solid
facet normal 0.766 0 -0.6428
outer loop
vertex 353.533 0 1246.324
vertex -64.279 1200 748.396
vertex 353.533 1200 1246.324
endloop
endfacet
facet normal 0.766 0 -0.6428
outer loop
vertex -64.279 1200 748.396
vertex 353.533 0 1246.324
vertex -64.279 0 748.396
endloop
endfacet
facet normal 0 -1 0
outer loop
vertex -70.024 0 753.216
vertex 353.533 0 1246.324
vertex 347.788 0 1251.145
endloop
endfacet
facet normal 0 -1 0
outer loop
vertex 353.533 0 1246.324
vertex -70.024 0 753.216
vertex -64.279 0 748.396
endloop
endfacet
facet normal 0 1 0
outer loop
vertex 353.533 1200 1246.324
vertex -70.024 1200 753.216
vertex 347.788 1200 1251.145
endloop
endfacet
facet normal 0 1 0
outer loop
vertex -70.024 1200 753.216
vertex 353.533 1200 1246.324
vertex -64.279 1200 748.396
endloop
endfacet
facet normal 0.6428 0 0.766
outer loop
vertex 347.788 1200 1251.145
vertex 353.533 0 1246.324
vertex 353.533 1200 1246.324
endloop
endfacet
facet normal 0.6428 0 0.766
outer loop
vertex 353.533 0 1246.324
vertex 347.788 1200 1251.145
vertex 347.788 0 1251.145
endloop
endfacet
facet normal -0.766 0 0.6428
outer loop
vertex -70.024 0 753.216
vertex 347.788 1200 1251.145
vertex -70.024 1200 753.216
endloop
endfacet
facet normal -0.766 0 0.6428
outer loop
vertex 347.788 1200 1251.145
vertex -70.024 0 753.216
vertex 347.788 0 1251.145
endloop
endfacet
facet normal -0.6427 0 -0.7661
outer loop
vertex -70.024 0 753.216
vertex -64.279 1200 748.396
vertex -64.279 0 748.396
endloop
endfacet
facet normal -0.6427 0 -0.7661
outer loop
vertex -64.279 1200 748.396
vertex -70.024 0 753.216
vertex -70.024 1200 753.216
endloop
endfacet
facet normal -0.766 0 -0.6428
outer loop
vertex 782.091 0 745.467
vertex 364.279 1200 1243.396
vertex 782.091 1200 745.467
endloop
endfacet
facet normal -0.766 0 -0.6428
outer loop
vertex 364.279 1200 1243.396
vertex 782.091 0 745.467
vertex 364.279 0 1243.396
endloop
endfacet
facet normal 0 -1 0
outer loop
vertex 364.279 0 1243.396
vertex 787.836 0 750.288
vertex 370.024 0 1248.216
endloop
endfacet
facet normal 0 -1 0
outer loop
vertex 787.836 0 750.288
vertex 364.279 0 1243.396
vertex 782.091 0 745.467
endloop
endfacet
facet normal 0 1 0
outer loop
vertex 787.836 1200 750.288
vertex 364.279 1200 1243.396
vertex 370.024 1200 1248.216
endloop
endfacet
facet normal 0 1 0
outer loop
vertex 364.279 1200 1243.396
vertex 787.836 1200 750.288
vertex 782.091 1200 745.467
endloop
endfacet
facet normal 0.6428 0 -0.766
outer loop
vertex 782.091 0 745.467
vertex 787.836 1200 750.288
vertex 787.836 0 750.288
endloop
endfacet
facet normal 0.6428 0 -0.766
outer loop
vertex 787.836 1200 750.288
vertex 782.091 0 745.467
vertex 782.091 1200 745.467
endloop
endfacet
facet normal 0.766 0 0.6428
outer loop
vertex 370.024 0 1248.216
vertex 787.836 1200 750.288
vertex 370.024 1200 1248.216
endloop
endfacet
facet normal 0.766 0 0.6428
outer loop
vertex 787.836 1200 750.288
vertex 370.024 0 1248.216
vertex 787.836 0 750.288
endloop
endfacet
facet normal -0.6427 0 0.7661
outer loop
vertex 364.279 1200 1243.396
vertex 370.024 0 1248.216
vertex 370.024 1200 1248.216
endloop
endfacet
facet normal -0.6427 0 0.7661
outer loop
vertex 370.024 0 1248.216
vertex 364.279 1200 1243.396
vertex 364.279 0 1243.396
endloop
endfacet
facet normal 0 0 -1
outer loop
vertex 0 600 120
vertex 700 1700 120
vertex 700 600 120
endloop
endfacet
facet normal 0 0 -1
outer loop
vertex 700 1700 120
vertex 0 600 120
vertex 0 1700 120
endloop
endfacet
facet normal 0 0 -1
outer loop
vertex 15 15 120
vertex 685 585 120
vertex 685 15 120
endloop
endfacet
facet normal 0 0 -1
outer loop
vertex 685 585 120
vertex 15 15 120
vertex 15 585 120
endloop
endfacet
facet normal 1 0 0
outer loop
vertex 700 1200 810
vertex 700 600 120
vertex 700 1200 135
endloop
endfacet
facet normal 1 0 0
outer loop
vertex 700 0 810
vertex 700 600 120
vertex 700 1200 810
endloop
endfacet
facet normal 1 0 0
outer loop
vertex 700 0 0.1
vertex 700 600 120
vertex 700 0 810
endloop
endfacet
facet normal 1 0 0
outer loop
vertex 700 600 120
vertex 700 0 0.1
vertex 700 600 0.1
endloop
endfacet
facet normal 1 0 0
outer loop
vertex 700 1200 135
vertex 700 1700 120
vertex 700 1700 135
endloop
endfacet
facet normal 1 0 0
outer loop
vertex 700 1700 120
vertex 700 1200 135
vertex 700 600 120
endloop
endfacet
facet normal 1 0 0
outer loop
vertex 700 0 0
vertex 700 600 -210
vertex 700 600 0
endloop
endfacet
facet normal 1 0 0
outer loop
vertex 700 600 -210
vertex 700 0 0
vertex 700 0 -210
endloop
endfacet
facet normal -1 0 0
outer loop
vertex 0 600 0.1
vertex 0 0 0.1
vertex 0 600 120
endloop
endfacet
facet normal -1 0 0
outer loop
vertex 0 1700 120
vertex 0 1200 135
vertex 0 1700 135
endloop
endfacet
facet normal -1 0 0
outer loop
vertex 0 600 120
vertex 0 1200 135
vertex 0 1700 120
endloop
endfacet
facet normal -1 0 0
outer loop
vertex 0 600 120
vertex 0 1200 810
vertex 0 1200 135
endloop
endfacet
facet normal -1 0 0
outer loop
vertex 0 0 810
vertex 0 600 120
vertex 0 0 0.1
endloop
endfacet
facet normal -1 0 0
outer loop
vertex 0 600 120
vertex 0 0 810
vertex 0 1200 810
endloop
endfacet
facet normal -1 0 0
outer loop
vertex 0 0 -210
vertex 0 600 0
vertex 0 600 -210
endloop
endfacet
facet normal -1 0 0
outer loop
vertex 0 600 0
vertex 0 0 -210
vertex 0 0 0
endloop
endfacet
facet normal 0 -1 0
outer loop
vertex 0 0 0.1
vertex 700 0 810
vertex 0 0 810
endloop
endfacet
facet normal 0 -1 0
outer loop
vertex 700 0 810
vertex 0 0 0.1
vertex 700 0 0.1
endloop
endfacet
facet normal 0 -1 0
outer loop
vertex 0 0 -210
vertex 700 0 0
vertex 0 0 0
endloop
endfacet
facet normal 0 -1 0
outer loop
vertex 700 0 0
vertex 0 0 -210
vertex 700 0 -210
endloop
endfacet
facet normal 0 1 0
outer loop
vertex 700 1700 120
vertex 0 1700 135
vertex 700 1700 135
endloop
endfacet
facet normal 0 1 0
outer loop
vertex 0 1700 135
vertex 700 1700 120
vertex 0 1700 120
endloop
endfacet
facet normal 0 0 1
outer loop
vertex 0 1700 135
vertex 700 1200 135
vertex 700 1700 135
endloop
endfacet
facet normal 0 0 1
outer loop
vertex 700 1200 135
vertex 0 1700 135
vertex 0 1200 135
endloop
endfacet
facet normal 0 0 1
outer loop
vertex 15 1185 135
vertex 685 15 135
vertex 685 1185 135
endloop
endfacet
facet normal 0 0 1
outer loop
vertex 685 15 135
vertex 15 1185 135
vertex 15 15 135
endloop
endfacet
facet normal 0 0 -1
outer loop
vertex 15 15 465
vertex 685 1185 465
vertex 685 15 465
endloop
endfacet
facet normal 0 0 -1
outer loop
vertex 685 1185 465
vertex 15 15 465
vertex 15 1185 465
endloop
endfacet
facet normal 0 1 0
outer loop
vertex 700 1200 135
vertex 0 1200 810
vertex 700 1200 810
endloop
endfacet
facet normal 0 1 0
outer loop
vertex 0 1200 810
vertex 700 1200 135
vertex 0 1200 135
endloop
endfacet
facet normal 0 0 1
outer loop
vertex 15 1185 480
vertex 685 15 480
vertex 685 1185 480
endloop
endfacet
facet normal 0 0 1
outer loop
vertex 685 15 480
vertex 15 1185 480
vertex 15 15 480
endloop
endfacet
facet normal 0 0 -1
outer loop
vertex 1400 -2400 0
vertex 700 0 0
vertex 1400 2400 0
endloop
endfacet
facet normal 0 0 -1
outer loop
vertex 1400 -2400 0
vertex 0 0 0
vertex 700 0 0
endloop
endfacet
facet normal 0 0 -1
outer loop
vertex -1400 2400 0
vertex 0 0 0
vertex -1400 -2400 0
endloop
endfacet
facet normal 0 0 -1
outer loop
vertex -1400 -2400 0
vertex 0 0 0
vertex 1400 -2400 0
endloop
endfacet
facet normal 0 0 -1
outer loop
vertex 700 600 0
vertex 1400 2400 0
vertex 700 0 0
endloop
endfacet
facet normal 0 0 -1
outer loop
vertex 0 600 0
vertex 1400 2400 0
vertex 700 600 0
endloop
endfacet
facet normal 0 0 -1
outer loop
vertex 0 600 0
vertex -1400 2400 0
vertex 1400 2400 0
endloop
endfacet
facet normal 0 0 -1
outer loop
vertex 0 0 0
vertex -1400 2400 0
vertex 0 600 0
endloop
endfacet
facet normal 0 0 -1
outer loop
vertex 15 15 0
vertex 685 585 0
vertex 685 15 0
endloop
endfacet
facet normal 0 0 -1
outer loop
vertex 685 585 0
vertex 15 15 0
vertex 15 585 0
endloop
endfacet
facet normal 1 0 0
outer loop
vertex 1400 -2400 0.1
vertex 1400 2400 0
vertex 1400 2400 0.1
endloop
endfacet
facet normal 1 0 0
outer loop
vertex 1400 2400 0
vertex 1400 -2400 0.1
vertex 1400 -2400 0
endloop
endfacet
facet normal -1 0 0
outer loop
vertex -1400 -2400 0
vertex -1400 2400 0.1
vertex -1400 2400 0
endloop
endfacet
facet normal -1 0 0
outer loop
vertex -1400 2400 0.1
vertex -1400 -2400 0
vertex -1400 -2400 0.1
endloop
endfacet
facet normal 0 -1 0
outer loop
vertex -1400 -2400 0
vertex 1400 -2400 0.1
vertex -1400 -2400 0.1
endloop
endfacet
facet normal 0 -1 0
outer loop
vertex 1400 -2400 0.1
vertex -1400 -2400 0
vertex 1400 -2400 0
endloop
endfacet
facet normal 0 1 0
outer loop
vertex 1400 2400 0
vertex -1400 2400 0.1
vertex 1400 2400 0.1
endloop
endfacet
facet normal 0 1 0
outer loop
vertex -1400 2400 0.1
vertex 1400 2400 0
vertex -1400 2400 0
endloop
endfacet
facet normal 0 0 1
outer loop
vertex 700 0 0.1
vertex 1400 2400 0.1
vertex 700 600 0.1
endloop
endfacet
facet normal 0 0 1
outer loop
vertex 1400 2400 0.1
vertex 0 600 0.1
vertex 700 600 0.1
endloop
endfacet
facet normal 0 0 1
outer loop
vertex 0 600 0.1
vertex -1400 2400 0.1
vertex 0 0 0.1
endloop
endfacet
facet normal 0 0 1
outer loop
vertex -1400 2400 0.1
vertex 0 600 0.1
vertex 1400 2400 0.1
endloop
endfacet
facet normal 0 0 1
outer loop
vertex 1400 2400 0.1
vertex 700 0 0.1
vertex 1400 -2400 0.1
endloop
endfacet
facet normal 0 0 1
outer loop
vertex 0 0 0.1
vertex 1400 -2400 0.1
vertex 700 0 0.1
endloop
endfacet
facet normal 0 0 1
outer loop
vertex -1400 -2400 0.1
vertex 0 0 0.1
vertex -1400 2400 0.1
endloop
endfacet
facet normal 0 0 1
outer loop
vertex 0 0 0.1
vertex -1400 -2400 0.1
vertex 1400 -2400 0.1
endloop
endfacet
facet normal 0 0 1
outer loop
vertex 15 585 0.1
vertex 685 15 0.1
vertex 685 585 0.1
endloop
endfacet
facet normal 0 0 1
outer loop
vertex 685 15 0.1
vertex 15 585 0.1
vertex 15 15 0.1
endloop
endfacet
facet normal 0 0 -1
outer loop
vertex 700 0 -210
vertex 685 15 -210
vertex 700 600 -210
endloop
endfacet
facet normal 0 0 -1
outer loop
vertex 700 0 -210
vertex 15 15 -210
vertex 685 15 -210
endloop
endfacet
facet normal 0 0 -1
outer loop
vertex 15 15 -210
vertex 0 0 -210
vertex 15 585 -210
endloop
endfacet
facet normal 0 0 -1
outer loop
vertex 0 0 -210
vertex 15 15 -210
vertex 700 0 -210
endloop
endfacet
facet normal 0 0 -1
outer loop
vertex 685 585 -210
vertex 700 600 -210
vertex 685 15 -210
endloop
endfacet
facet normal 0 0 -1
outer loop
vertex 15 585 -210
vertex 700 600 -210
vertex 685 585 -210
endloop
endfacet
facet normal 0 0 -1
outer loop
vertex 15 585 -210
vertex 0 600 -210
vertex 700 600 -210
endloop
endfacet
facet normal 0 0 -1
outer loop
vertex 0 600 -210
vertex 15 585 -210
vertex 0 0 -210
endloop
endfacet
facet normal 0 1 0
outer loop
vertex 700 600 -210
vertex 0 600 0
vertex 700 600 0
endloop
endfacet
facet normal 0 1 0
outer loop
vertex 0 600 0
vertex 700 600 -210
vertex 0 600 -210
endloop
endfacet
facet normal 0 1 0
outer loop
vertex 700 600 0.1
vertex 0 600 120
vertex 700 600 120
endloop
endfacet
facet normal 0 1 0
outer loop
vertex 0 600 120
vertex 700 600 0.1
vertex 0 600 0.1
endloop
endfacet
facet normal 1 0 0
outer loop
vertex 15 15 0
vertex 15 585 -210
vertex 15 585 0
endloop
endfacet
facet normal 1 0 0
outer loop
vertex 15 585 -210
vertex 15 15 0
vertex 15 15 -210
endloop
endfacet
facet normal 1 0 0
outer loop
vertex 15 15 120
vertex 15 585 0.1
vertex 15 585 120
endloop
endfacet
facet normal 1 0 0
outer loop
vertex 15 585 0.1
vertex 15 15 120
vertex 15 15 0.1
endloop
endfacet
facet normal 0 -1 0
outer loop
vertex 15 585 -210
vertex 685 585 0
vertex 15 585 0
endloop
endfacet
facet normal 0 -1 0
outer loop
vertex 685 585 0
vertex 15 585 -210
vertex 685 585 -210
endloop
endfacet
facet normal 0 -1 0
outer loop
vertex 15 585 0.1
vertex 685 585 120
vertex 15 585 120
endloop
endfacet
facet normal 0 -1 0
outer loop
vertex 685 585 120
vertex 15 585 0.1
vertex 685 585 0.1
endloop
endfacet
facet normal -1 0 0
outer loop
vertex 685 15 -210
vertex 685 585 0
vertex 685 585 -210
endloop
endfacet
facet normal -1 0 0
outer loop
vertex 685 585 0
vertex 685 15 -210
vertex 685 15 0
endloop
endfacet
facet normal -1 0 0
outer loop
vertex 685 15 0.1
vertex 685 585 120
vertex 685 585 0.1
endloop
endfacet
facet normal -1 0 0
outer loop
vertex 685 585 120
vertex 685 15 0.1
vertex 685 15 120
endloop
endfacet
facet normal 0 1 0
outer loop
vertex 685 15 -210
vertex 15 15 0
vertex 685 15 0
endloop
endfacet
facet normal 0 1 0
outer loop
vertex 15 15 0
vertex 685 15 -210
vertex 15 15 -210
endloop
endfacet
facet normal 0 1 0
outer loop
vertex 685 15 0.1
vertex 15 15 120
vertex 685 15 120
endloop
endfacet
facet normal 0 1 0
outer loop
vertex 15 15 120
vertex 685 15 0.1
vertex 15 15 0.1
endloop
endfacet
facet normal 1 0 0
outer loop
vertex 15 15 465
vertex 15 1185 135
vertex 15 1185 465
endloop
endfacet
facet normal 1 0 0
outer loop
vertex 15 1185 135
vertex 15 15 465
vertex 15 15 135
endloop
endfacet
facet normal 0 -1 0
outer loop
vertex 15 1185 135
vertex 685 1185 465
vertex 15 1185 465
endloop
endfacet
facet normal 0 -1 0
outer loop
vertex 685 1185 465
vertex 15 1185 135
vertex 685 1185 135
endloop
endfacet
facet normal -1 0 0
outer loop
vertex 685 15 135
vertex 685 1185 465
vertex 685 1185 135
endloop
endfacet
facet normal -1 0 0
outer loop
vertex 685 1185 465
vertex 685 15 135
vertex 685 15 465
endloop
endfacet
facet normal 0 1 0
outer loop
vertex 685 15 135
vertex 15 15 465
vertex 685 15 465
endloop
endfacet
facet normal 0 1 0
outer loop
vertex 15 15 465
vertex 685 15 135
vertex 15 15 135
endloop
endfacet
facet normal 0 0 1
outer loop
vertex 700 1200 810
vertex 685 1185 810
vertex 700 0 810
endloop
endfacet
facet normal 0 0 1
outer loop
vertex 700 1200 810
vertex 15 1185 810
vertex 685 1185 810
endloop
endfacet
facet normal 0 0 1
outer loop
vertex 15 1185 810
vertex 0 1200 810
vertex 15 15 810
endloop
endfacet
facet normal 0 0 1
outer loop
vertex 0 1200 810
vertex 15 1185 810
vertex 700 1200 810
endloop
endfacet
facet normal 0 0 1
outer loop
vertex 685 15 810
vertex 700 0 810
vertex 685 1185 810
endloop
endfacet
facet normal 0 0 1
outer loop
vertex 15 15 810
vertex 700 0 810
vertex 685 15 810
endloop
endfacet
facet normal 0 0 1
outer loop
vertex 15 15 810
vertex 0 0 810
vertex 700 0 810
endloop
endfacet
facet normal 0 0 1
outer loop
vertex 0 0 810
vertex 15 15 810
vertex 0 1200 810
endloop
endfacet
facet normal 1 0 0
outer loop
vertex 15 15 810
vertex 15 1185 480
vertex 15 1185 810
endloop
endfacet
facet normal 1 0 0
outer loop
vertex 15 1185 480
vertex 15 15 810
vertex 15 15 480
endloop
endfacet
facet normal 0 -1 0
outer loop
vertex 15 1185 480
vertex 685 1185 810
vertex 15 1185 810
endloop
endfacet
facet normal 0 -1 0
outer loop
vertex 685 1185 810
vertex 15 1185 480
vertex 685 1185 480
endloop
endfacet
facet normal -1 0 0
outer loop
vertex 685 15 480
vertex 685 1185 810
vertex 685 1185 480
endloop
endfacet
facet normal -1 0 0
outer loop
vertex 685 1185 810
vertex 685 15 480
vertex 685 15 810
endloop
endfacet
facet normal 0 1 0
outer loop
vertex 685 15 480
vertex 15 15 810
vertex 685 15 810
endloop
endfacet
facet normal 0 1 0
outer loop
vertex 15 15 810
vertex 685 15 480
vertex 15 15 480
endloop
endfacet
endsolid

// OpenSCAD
// exteria walls

exteria_length = 700;
exteria_height_base = 120;
exteria_height_1f = 330;
exteria_height_2f = 330;
exteria_height_roof = 250;
exteria_depth = 1200;
exteria_depth_base = 600;
depth_balcony = 500;
height_base = 330;
wall_thickness = 15;

roof_width = 500;
roof_angle = 60;

module base_floor() {

    translate([0, 0, exteria_height_base - height_base])
    linear_extrude(height_base)
    difference() {
        square([exteria_length, exteria_depth_base]);
        offset(-wall_thickness)
            square([exteria_length, exteria_depth_base]);
    }
}

module first_floor() {

    translate([0, 0, exteria_height_base + wall_thickness])
    linear_extrude(height_base)
    difference() {
        square([exteria_length, exteria_depth]);
        offset(-wall_thickness)
            square([exteria_length, exteria_depth]);
    }
}

module second_floor() {

    translate([0, 0, exteria_height_base + exteria_height_1f + wall_thickness * 2])
    linear_extrude(height_base)
    difference() {
        square([exteria_length, exteria_depth]);
        offset(-wall_thickness)
            square([exteria_length, exteria_depth]);
    }
}

module roof() {
    
    // left part
    translate([0,0,exteria_height_base + exteria_height_1f + exteria_height_2f + wall_thickness * 3])
    rotate([0,-50,0])
    color("brown")
    linear_extrude(wall_thickness/2)
    translate([-roof_width/5, 0])
    square([roof_width*1.3, exteria_depth]);
    
    // right part
    translate([roof_width/5*3,0,exteria_height_base + exteria_height_1f + exteria_height_2f * 2.5 + wall_thickness * 3])
    rotate([0,50,0])
    color("brown")
    linear_extrude(wall_thickness/2)
    translate([roof_width/5, 0])
    square([roof_width*1.3, exteria_depth]);
}

module grounds() {
    
    // 1F
    translate([0,0,exteria_height_base])
    linear_extrude(wall_thickness)
        square([exteria_length, exteria_depth + depth_balcony]);
    
    // 2F
    translate([0,0,exteria_height_base + exteria_height_1f + wall_thickness])
    linear_extrude(wall_thickness)
        square([exteria_length, exteria_depth]);
    
    // external ground
    translate([0,0,0])
    color("green")
    linear_extrude(0.1)
        square([exteria_length * 4 , exteria_depth * 4], center = true);
    
}

base_floor();
first_floor();
second_floor();
roof();
grounds();
